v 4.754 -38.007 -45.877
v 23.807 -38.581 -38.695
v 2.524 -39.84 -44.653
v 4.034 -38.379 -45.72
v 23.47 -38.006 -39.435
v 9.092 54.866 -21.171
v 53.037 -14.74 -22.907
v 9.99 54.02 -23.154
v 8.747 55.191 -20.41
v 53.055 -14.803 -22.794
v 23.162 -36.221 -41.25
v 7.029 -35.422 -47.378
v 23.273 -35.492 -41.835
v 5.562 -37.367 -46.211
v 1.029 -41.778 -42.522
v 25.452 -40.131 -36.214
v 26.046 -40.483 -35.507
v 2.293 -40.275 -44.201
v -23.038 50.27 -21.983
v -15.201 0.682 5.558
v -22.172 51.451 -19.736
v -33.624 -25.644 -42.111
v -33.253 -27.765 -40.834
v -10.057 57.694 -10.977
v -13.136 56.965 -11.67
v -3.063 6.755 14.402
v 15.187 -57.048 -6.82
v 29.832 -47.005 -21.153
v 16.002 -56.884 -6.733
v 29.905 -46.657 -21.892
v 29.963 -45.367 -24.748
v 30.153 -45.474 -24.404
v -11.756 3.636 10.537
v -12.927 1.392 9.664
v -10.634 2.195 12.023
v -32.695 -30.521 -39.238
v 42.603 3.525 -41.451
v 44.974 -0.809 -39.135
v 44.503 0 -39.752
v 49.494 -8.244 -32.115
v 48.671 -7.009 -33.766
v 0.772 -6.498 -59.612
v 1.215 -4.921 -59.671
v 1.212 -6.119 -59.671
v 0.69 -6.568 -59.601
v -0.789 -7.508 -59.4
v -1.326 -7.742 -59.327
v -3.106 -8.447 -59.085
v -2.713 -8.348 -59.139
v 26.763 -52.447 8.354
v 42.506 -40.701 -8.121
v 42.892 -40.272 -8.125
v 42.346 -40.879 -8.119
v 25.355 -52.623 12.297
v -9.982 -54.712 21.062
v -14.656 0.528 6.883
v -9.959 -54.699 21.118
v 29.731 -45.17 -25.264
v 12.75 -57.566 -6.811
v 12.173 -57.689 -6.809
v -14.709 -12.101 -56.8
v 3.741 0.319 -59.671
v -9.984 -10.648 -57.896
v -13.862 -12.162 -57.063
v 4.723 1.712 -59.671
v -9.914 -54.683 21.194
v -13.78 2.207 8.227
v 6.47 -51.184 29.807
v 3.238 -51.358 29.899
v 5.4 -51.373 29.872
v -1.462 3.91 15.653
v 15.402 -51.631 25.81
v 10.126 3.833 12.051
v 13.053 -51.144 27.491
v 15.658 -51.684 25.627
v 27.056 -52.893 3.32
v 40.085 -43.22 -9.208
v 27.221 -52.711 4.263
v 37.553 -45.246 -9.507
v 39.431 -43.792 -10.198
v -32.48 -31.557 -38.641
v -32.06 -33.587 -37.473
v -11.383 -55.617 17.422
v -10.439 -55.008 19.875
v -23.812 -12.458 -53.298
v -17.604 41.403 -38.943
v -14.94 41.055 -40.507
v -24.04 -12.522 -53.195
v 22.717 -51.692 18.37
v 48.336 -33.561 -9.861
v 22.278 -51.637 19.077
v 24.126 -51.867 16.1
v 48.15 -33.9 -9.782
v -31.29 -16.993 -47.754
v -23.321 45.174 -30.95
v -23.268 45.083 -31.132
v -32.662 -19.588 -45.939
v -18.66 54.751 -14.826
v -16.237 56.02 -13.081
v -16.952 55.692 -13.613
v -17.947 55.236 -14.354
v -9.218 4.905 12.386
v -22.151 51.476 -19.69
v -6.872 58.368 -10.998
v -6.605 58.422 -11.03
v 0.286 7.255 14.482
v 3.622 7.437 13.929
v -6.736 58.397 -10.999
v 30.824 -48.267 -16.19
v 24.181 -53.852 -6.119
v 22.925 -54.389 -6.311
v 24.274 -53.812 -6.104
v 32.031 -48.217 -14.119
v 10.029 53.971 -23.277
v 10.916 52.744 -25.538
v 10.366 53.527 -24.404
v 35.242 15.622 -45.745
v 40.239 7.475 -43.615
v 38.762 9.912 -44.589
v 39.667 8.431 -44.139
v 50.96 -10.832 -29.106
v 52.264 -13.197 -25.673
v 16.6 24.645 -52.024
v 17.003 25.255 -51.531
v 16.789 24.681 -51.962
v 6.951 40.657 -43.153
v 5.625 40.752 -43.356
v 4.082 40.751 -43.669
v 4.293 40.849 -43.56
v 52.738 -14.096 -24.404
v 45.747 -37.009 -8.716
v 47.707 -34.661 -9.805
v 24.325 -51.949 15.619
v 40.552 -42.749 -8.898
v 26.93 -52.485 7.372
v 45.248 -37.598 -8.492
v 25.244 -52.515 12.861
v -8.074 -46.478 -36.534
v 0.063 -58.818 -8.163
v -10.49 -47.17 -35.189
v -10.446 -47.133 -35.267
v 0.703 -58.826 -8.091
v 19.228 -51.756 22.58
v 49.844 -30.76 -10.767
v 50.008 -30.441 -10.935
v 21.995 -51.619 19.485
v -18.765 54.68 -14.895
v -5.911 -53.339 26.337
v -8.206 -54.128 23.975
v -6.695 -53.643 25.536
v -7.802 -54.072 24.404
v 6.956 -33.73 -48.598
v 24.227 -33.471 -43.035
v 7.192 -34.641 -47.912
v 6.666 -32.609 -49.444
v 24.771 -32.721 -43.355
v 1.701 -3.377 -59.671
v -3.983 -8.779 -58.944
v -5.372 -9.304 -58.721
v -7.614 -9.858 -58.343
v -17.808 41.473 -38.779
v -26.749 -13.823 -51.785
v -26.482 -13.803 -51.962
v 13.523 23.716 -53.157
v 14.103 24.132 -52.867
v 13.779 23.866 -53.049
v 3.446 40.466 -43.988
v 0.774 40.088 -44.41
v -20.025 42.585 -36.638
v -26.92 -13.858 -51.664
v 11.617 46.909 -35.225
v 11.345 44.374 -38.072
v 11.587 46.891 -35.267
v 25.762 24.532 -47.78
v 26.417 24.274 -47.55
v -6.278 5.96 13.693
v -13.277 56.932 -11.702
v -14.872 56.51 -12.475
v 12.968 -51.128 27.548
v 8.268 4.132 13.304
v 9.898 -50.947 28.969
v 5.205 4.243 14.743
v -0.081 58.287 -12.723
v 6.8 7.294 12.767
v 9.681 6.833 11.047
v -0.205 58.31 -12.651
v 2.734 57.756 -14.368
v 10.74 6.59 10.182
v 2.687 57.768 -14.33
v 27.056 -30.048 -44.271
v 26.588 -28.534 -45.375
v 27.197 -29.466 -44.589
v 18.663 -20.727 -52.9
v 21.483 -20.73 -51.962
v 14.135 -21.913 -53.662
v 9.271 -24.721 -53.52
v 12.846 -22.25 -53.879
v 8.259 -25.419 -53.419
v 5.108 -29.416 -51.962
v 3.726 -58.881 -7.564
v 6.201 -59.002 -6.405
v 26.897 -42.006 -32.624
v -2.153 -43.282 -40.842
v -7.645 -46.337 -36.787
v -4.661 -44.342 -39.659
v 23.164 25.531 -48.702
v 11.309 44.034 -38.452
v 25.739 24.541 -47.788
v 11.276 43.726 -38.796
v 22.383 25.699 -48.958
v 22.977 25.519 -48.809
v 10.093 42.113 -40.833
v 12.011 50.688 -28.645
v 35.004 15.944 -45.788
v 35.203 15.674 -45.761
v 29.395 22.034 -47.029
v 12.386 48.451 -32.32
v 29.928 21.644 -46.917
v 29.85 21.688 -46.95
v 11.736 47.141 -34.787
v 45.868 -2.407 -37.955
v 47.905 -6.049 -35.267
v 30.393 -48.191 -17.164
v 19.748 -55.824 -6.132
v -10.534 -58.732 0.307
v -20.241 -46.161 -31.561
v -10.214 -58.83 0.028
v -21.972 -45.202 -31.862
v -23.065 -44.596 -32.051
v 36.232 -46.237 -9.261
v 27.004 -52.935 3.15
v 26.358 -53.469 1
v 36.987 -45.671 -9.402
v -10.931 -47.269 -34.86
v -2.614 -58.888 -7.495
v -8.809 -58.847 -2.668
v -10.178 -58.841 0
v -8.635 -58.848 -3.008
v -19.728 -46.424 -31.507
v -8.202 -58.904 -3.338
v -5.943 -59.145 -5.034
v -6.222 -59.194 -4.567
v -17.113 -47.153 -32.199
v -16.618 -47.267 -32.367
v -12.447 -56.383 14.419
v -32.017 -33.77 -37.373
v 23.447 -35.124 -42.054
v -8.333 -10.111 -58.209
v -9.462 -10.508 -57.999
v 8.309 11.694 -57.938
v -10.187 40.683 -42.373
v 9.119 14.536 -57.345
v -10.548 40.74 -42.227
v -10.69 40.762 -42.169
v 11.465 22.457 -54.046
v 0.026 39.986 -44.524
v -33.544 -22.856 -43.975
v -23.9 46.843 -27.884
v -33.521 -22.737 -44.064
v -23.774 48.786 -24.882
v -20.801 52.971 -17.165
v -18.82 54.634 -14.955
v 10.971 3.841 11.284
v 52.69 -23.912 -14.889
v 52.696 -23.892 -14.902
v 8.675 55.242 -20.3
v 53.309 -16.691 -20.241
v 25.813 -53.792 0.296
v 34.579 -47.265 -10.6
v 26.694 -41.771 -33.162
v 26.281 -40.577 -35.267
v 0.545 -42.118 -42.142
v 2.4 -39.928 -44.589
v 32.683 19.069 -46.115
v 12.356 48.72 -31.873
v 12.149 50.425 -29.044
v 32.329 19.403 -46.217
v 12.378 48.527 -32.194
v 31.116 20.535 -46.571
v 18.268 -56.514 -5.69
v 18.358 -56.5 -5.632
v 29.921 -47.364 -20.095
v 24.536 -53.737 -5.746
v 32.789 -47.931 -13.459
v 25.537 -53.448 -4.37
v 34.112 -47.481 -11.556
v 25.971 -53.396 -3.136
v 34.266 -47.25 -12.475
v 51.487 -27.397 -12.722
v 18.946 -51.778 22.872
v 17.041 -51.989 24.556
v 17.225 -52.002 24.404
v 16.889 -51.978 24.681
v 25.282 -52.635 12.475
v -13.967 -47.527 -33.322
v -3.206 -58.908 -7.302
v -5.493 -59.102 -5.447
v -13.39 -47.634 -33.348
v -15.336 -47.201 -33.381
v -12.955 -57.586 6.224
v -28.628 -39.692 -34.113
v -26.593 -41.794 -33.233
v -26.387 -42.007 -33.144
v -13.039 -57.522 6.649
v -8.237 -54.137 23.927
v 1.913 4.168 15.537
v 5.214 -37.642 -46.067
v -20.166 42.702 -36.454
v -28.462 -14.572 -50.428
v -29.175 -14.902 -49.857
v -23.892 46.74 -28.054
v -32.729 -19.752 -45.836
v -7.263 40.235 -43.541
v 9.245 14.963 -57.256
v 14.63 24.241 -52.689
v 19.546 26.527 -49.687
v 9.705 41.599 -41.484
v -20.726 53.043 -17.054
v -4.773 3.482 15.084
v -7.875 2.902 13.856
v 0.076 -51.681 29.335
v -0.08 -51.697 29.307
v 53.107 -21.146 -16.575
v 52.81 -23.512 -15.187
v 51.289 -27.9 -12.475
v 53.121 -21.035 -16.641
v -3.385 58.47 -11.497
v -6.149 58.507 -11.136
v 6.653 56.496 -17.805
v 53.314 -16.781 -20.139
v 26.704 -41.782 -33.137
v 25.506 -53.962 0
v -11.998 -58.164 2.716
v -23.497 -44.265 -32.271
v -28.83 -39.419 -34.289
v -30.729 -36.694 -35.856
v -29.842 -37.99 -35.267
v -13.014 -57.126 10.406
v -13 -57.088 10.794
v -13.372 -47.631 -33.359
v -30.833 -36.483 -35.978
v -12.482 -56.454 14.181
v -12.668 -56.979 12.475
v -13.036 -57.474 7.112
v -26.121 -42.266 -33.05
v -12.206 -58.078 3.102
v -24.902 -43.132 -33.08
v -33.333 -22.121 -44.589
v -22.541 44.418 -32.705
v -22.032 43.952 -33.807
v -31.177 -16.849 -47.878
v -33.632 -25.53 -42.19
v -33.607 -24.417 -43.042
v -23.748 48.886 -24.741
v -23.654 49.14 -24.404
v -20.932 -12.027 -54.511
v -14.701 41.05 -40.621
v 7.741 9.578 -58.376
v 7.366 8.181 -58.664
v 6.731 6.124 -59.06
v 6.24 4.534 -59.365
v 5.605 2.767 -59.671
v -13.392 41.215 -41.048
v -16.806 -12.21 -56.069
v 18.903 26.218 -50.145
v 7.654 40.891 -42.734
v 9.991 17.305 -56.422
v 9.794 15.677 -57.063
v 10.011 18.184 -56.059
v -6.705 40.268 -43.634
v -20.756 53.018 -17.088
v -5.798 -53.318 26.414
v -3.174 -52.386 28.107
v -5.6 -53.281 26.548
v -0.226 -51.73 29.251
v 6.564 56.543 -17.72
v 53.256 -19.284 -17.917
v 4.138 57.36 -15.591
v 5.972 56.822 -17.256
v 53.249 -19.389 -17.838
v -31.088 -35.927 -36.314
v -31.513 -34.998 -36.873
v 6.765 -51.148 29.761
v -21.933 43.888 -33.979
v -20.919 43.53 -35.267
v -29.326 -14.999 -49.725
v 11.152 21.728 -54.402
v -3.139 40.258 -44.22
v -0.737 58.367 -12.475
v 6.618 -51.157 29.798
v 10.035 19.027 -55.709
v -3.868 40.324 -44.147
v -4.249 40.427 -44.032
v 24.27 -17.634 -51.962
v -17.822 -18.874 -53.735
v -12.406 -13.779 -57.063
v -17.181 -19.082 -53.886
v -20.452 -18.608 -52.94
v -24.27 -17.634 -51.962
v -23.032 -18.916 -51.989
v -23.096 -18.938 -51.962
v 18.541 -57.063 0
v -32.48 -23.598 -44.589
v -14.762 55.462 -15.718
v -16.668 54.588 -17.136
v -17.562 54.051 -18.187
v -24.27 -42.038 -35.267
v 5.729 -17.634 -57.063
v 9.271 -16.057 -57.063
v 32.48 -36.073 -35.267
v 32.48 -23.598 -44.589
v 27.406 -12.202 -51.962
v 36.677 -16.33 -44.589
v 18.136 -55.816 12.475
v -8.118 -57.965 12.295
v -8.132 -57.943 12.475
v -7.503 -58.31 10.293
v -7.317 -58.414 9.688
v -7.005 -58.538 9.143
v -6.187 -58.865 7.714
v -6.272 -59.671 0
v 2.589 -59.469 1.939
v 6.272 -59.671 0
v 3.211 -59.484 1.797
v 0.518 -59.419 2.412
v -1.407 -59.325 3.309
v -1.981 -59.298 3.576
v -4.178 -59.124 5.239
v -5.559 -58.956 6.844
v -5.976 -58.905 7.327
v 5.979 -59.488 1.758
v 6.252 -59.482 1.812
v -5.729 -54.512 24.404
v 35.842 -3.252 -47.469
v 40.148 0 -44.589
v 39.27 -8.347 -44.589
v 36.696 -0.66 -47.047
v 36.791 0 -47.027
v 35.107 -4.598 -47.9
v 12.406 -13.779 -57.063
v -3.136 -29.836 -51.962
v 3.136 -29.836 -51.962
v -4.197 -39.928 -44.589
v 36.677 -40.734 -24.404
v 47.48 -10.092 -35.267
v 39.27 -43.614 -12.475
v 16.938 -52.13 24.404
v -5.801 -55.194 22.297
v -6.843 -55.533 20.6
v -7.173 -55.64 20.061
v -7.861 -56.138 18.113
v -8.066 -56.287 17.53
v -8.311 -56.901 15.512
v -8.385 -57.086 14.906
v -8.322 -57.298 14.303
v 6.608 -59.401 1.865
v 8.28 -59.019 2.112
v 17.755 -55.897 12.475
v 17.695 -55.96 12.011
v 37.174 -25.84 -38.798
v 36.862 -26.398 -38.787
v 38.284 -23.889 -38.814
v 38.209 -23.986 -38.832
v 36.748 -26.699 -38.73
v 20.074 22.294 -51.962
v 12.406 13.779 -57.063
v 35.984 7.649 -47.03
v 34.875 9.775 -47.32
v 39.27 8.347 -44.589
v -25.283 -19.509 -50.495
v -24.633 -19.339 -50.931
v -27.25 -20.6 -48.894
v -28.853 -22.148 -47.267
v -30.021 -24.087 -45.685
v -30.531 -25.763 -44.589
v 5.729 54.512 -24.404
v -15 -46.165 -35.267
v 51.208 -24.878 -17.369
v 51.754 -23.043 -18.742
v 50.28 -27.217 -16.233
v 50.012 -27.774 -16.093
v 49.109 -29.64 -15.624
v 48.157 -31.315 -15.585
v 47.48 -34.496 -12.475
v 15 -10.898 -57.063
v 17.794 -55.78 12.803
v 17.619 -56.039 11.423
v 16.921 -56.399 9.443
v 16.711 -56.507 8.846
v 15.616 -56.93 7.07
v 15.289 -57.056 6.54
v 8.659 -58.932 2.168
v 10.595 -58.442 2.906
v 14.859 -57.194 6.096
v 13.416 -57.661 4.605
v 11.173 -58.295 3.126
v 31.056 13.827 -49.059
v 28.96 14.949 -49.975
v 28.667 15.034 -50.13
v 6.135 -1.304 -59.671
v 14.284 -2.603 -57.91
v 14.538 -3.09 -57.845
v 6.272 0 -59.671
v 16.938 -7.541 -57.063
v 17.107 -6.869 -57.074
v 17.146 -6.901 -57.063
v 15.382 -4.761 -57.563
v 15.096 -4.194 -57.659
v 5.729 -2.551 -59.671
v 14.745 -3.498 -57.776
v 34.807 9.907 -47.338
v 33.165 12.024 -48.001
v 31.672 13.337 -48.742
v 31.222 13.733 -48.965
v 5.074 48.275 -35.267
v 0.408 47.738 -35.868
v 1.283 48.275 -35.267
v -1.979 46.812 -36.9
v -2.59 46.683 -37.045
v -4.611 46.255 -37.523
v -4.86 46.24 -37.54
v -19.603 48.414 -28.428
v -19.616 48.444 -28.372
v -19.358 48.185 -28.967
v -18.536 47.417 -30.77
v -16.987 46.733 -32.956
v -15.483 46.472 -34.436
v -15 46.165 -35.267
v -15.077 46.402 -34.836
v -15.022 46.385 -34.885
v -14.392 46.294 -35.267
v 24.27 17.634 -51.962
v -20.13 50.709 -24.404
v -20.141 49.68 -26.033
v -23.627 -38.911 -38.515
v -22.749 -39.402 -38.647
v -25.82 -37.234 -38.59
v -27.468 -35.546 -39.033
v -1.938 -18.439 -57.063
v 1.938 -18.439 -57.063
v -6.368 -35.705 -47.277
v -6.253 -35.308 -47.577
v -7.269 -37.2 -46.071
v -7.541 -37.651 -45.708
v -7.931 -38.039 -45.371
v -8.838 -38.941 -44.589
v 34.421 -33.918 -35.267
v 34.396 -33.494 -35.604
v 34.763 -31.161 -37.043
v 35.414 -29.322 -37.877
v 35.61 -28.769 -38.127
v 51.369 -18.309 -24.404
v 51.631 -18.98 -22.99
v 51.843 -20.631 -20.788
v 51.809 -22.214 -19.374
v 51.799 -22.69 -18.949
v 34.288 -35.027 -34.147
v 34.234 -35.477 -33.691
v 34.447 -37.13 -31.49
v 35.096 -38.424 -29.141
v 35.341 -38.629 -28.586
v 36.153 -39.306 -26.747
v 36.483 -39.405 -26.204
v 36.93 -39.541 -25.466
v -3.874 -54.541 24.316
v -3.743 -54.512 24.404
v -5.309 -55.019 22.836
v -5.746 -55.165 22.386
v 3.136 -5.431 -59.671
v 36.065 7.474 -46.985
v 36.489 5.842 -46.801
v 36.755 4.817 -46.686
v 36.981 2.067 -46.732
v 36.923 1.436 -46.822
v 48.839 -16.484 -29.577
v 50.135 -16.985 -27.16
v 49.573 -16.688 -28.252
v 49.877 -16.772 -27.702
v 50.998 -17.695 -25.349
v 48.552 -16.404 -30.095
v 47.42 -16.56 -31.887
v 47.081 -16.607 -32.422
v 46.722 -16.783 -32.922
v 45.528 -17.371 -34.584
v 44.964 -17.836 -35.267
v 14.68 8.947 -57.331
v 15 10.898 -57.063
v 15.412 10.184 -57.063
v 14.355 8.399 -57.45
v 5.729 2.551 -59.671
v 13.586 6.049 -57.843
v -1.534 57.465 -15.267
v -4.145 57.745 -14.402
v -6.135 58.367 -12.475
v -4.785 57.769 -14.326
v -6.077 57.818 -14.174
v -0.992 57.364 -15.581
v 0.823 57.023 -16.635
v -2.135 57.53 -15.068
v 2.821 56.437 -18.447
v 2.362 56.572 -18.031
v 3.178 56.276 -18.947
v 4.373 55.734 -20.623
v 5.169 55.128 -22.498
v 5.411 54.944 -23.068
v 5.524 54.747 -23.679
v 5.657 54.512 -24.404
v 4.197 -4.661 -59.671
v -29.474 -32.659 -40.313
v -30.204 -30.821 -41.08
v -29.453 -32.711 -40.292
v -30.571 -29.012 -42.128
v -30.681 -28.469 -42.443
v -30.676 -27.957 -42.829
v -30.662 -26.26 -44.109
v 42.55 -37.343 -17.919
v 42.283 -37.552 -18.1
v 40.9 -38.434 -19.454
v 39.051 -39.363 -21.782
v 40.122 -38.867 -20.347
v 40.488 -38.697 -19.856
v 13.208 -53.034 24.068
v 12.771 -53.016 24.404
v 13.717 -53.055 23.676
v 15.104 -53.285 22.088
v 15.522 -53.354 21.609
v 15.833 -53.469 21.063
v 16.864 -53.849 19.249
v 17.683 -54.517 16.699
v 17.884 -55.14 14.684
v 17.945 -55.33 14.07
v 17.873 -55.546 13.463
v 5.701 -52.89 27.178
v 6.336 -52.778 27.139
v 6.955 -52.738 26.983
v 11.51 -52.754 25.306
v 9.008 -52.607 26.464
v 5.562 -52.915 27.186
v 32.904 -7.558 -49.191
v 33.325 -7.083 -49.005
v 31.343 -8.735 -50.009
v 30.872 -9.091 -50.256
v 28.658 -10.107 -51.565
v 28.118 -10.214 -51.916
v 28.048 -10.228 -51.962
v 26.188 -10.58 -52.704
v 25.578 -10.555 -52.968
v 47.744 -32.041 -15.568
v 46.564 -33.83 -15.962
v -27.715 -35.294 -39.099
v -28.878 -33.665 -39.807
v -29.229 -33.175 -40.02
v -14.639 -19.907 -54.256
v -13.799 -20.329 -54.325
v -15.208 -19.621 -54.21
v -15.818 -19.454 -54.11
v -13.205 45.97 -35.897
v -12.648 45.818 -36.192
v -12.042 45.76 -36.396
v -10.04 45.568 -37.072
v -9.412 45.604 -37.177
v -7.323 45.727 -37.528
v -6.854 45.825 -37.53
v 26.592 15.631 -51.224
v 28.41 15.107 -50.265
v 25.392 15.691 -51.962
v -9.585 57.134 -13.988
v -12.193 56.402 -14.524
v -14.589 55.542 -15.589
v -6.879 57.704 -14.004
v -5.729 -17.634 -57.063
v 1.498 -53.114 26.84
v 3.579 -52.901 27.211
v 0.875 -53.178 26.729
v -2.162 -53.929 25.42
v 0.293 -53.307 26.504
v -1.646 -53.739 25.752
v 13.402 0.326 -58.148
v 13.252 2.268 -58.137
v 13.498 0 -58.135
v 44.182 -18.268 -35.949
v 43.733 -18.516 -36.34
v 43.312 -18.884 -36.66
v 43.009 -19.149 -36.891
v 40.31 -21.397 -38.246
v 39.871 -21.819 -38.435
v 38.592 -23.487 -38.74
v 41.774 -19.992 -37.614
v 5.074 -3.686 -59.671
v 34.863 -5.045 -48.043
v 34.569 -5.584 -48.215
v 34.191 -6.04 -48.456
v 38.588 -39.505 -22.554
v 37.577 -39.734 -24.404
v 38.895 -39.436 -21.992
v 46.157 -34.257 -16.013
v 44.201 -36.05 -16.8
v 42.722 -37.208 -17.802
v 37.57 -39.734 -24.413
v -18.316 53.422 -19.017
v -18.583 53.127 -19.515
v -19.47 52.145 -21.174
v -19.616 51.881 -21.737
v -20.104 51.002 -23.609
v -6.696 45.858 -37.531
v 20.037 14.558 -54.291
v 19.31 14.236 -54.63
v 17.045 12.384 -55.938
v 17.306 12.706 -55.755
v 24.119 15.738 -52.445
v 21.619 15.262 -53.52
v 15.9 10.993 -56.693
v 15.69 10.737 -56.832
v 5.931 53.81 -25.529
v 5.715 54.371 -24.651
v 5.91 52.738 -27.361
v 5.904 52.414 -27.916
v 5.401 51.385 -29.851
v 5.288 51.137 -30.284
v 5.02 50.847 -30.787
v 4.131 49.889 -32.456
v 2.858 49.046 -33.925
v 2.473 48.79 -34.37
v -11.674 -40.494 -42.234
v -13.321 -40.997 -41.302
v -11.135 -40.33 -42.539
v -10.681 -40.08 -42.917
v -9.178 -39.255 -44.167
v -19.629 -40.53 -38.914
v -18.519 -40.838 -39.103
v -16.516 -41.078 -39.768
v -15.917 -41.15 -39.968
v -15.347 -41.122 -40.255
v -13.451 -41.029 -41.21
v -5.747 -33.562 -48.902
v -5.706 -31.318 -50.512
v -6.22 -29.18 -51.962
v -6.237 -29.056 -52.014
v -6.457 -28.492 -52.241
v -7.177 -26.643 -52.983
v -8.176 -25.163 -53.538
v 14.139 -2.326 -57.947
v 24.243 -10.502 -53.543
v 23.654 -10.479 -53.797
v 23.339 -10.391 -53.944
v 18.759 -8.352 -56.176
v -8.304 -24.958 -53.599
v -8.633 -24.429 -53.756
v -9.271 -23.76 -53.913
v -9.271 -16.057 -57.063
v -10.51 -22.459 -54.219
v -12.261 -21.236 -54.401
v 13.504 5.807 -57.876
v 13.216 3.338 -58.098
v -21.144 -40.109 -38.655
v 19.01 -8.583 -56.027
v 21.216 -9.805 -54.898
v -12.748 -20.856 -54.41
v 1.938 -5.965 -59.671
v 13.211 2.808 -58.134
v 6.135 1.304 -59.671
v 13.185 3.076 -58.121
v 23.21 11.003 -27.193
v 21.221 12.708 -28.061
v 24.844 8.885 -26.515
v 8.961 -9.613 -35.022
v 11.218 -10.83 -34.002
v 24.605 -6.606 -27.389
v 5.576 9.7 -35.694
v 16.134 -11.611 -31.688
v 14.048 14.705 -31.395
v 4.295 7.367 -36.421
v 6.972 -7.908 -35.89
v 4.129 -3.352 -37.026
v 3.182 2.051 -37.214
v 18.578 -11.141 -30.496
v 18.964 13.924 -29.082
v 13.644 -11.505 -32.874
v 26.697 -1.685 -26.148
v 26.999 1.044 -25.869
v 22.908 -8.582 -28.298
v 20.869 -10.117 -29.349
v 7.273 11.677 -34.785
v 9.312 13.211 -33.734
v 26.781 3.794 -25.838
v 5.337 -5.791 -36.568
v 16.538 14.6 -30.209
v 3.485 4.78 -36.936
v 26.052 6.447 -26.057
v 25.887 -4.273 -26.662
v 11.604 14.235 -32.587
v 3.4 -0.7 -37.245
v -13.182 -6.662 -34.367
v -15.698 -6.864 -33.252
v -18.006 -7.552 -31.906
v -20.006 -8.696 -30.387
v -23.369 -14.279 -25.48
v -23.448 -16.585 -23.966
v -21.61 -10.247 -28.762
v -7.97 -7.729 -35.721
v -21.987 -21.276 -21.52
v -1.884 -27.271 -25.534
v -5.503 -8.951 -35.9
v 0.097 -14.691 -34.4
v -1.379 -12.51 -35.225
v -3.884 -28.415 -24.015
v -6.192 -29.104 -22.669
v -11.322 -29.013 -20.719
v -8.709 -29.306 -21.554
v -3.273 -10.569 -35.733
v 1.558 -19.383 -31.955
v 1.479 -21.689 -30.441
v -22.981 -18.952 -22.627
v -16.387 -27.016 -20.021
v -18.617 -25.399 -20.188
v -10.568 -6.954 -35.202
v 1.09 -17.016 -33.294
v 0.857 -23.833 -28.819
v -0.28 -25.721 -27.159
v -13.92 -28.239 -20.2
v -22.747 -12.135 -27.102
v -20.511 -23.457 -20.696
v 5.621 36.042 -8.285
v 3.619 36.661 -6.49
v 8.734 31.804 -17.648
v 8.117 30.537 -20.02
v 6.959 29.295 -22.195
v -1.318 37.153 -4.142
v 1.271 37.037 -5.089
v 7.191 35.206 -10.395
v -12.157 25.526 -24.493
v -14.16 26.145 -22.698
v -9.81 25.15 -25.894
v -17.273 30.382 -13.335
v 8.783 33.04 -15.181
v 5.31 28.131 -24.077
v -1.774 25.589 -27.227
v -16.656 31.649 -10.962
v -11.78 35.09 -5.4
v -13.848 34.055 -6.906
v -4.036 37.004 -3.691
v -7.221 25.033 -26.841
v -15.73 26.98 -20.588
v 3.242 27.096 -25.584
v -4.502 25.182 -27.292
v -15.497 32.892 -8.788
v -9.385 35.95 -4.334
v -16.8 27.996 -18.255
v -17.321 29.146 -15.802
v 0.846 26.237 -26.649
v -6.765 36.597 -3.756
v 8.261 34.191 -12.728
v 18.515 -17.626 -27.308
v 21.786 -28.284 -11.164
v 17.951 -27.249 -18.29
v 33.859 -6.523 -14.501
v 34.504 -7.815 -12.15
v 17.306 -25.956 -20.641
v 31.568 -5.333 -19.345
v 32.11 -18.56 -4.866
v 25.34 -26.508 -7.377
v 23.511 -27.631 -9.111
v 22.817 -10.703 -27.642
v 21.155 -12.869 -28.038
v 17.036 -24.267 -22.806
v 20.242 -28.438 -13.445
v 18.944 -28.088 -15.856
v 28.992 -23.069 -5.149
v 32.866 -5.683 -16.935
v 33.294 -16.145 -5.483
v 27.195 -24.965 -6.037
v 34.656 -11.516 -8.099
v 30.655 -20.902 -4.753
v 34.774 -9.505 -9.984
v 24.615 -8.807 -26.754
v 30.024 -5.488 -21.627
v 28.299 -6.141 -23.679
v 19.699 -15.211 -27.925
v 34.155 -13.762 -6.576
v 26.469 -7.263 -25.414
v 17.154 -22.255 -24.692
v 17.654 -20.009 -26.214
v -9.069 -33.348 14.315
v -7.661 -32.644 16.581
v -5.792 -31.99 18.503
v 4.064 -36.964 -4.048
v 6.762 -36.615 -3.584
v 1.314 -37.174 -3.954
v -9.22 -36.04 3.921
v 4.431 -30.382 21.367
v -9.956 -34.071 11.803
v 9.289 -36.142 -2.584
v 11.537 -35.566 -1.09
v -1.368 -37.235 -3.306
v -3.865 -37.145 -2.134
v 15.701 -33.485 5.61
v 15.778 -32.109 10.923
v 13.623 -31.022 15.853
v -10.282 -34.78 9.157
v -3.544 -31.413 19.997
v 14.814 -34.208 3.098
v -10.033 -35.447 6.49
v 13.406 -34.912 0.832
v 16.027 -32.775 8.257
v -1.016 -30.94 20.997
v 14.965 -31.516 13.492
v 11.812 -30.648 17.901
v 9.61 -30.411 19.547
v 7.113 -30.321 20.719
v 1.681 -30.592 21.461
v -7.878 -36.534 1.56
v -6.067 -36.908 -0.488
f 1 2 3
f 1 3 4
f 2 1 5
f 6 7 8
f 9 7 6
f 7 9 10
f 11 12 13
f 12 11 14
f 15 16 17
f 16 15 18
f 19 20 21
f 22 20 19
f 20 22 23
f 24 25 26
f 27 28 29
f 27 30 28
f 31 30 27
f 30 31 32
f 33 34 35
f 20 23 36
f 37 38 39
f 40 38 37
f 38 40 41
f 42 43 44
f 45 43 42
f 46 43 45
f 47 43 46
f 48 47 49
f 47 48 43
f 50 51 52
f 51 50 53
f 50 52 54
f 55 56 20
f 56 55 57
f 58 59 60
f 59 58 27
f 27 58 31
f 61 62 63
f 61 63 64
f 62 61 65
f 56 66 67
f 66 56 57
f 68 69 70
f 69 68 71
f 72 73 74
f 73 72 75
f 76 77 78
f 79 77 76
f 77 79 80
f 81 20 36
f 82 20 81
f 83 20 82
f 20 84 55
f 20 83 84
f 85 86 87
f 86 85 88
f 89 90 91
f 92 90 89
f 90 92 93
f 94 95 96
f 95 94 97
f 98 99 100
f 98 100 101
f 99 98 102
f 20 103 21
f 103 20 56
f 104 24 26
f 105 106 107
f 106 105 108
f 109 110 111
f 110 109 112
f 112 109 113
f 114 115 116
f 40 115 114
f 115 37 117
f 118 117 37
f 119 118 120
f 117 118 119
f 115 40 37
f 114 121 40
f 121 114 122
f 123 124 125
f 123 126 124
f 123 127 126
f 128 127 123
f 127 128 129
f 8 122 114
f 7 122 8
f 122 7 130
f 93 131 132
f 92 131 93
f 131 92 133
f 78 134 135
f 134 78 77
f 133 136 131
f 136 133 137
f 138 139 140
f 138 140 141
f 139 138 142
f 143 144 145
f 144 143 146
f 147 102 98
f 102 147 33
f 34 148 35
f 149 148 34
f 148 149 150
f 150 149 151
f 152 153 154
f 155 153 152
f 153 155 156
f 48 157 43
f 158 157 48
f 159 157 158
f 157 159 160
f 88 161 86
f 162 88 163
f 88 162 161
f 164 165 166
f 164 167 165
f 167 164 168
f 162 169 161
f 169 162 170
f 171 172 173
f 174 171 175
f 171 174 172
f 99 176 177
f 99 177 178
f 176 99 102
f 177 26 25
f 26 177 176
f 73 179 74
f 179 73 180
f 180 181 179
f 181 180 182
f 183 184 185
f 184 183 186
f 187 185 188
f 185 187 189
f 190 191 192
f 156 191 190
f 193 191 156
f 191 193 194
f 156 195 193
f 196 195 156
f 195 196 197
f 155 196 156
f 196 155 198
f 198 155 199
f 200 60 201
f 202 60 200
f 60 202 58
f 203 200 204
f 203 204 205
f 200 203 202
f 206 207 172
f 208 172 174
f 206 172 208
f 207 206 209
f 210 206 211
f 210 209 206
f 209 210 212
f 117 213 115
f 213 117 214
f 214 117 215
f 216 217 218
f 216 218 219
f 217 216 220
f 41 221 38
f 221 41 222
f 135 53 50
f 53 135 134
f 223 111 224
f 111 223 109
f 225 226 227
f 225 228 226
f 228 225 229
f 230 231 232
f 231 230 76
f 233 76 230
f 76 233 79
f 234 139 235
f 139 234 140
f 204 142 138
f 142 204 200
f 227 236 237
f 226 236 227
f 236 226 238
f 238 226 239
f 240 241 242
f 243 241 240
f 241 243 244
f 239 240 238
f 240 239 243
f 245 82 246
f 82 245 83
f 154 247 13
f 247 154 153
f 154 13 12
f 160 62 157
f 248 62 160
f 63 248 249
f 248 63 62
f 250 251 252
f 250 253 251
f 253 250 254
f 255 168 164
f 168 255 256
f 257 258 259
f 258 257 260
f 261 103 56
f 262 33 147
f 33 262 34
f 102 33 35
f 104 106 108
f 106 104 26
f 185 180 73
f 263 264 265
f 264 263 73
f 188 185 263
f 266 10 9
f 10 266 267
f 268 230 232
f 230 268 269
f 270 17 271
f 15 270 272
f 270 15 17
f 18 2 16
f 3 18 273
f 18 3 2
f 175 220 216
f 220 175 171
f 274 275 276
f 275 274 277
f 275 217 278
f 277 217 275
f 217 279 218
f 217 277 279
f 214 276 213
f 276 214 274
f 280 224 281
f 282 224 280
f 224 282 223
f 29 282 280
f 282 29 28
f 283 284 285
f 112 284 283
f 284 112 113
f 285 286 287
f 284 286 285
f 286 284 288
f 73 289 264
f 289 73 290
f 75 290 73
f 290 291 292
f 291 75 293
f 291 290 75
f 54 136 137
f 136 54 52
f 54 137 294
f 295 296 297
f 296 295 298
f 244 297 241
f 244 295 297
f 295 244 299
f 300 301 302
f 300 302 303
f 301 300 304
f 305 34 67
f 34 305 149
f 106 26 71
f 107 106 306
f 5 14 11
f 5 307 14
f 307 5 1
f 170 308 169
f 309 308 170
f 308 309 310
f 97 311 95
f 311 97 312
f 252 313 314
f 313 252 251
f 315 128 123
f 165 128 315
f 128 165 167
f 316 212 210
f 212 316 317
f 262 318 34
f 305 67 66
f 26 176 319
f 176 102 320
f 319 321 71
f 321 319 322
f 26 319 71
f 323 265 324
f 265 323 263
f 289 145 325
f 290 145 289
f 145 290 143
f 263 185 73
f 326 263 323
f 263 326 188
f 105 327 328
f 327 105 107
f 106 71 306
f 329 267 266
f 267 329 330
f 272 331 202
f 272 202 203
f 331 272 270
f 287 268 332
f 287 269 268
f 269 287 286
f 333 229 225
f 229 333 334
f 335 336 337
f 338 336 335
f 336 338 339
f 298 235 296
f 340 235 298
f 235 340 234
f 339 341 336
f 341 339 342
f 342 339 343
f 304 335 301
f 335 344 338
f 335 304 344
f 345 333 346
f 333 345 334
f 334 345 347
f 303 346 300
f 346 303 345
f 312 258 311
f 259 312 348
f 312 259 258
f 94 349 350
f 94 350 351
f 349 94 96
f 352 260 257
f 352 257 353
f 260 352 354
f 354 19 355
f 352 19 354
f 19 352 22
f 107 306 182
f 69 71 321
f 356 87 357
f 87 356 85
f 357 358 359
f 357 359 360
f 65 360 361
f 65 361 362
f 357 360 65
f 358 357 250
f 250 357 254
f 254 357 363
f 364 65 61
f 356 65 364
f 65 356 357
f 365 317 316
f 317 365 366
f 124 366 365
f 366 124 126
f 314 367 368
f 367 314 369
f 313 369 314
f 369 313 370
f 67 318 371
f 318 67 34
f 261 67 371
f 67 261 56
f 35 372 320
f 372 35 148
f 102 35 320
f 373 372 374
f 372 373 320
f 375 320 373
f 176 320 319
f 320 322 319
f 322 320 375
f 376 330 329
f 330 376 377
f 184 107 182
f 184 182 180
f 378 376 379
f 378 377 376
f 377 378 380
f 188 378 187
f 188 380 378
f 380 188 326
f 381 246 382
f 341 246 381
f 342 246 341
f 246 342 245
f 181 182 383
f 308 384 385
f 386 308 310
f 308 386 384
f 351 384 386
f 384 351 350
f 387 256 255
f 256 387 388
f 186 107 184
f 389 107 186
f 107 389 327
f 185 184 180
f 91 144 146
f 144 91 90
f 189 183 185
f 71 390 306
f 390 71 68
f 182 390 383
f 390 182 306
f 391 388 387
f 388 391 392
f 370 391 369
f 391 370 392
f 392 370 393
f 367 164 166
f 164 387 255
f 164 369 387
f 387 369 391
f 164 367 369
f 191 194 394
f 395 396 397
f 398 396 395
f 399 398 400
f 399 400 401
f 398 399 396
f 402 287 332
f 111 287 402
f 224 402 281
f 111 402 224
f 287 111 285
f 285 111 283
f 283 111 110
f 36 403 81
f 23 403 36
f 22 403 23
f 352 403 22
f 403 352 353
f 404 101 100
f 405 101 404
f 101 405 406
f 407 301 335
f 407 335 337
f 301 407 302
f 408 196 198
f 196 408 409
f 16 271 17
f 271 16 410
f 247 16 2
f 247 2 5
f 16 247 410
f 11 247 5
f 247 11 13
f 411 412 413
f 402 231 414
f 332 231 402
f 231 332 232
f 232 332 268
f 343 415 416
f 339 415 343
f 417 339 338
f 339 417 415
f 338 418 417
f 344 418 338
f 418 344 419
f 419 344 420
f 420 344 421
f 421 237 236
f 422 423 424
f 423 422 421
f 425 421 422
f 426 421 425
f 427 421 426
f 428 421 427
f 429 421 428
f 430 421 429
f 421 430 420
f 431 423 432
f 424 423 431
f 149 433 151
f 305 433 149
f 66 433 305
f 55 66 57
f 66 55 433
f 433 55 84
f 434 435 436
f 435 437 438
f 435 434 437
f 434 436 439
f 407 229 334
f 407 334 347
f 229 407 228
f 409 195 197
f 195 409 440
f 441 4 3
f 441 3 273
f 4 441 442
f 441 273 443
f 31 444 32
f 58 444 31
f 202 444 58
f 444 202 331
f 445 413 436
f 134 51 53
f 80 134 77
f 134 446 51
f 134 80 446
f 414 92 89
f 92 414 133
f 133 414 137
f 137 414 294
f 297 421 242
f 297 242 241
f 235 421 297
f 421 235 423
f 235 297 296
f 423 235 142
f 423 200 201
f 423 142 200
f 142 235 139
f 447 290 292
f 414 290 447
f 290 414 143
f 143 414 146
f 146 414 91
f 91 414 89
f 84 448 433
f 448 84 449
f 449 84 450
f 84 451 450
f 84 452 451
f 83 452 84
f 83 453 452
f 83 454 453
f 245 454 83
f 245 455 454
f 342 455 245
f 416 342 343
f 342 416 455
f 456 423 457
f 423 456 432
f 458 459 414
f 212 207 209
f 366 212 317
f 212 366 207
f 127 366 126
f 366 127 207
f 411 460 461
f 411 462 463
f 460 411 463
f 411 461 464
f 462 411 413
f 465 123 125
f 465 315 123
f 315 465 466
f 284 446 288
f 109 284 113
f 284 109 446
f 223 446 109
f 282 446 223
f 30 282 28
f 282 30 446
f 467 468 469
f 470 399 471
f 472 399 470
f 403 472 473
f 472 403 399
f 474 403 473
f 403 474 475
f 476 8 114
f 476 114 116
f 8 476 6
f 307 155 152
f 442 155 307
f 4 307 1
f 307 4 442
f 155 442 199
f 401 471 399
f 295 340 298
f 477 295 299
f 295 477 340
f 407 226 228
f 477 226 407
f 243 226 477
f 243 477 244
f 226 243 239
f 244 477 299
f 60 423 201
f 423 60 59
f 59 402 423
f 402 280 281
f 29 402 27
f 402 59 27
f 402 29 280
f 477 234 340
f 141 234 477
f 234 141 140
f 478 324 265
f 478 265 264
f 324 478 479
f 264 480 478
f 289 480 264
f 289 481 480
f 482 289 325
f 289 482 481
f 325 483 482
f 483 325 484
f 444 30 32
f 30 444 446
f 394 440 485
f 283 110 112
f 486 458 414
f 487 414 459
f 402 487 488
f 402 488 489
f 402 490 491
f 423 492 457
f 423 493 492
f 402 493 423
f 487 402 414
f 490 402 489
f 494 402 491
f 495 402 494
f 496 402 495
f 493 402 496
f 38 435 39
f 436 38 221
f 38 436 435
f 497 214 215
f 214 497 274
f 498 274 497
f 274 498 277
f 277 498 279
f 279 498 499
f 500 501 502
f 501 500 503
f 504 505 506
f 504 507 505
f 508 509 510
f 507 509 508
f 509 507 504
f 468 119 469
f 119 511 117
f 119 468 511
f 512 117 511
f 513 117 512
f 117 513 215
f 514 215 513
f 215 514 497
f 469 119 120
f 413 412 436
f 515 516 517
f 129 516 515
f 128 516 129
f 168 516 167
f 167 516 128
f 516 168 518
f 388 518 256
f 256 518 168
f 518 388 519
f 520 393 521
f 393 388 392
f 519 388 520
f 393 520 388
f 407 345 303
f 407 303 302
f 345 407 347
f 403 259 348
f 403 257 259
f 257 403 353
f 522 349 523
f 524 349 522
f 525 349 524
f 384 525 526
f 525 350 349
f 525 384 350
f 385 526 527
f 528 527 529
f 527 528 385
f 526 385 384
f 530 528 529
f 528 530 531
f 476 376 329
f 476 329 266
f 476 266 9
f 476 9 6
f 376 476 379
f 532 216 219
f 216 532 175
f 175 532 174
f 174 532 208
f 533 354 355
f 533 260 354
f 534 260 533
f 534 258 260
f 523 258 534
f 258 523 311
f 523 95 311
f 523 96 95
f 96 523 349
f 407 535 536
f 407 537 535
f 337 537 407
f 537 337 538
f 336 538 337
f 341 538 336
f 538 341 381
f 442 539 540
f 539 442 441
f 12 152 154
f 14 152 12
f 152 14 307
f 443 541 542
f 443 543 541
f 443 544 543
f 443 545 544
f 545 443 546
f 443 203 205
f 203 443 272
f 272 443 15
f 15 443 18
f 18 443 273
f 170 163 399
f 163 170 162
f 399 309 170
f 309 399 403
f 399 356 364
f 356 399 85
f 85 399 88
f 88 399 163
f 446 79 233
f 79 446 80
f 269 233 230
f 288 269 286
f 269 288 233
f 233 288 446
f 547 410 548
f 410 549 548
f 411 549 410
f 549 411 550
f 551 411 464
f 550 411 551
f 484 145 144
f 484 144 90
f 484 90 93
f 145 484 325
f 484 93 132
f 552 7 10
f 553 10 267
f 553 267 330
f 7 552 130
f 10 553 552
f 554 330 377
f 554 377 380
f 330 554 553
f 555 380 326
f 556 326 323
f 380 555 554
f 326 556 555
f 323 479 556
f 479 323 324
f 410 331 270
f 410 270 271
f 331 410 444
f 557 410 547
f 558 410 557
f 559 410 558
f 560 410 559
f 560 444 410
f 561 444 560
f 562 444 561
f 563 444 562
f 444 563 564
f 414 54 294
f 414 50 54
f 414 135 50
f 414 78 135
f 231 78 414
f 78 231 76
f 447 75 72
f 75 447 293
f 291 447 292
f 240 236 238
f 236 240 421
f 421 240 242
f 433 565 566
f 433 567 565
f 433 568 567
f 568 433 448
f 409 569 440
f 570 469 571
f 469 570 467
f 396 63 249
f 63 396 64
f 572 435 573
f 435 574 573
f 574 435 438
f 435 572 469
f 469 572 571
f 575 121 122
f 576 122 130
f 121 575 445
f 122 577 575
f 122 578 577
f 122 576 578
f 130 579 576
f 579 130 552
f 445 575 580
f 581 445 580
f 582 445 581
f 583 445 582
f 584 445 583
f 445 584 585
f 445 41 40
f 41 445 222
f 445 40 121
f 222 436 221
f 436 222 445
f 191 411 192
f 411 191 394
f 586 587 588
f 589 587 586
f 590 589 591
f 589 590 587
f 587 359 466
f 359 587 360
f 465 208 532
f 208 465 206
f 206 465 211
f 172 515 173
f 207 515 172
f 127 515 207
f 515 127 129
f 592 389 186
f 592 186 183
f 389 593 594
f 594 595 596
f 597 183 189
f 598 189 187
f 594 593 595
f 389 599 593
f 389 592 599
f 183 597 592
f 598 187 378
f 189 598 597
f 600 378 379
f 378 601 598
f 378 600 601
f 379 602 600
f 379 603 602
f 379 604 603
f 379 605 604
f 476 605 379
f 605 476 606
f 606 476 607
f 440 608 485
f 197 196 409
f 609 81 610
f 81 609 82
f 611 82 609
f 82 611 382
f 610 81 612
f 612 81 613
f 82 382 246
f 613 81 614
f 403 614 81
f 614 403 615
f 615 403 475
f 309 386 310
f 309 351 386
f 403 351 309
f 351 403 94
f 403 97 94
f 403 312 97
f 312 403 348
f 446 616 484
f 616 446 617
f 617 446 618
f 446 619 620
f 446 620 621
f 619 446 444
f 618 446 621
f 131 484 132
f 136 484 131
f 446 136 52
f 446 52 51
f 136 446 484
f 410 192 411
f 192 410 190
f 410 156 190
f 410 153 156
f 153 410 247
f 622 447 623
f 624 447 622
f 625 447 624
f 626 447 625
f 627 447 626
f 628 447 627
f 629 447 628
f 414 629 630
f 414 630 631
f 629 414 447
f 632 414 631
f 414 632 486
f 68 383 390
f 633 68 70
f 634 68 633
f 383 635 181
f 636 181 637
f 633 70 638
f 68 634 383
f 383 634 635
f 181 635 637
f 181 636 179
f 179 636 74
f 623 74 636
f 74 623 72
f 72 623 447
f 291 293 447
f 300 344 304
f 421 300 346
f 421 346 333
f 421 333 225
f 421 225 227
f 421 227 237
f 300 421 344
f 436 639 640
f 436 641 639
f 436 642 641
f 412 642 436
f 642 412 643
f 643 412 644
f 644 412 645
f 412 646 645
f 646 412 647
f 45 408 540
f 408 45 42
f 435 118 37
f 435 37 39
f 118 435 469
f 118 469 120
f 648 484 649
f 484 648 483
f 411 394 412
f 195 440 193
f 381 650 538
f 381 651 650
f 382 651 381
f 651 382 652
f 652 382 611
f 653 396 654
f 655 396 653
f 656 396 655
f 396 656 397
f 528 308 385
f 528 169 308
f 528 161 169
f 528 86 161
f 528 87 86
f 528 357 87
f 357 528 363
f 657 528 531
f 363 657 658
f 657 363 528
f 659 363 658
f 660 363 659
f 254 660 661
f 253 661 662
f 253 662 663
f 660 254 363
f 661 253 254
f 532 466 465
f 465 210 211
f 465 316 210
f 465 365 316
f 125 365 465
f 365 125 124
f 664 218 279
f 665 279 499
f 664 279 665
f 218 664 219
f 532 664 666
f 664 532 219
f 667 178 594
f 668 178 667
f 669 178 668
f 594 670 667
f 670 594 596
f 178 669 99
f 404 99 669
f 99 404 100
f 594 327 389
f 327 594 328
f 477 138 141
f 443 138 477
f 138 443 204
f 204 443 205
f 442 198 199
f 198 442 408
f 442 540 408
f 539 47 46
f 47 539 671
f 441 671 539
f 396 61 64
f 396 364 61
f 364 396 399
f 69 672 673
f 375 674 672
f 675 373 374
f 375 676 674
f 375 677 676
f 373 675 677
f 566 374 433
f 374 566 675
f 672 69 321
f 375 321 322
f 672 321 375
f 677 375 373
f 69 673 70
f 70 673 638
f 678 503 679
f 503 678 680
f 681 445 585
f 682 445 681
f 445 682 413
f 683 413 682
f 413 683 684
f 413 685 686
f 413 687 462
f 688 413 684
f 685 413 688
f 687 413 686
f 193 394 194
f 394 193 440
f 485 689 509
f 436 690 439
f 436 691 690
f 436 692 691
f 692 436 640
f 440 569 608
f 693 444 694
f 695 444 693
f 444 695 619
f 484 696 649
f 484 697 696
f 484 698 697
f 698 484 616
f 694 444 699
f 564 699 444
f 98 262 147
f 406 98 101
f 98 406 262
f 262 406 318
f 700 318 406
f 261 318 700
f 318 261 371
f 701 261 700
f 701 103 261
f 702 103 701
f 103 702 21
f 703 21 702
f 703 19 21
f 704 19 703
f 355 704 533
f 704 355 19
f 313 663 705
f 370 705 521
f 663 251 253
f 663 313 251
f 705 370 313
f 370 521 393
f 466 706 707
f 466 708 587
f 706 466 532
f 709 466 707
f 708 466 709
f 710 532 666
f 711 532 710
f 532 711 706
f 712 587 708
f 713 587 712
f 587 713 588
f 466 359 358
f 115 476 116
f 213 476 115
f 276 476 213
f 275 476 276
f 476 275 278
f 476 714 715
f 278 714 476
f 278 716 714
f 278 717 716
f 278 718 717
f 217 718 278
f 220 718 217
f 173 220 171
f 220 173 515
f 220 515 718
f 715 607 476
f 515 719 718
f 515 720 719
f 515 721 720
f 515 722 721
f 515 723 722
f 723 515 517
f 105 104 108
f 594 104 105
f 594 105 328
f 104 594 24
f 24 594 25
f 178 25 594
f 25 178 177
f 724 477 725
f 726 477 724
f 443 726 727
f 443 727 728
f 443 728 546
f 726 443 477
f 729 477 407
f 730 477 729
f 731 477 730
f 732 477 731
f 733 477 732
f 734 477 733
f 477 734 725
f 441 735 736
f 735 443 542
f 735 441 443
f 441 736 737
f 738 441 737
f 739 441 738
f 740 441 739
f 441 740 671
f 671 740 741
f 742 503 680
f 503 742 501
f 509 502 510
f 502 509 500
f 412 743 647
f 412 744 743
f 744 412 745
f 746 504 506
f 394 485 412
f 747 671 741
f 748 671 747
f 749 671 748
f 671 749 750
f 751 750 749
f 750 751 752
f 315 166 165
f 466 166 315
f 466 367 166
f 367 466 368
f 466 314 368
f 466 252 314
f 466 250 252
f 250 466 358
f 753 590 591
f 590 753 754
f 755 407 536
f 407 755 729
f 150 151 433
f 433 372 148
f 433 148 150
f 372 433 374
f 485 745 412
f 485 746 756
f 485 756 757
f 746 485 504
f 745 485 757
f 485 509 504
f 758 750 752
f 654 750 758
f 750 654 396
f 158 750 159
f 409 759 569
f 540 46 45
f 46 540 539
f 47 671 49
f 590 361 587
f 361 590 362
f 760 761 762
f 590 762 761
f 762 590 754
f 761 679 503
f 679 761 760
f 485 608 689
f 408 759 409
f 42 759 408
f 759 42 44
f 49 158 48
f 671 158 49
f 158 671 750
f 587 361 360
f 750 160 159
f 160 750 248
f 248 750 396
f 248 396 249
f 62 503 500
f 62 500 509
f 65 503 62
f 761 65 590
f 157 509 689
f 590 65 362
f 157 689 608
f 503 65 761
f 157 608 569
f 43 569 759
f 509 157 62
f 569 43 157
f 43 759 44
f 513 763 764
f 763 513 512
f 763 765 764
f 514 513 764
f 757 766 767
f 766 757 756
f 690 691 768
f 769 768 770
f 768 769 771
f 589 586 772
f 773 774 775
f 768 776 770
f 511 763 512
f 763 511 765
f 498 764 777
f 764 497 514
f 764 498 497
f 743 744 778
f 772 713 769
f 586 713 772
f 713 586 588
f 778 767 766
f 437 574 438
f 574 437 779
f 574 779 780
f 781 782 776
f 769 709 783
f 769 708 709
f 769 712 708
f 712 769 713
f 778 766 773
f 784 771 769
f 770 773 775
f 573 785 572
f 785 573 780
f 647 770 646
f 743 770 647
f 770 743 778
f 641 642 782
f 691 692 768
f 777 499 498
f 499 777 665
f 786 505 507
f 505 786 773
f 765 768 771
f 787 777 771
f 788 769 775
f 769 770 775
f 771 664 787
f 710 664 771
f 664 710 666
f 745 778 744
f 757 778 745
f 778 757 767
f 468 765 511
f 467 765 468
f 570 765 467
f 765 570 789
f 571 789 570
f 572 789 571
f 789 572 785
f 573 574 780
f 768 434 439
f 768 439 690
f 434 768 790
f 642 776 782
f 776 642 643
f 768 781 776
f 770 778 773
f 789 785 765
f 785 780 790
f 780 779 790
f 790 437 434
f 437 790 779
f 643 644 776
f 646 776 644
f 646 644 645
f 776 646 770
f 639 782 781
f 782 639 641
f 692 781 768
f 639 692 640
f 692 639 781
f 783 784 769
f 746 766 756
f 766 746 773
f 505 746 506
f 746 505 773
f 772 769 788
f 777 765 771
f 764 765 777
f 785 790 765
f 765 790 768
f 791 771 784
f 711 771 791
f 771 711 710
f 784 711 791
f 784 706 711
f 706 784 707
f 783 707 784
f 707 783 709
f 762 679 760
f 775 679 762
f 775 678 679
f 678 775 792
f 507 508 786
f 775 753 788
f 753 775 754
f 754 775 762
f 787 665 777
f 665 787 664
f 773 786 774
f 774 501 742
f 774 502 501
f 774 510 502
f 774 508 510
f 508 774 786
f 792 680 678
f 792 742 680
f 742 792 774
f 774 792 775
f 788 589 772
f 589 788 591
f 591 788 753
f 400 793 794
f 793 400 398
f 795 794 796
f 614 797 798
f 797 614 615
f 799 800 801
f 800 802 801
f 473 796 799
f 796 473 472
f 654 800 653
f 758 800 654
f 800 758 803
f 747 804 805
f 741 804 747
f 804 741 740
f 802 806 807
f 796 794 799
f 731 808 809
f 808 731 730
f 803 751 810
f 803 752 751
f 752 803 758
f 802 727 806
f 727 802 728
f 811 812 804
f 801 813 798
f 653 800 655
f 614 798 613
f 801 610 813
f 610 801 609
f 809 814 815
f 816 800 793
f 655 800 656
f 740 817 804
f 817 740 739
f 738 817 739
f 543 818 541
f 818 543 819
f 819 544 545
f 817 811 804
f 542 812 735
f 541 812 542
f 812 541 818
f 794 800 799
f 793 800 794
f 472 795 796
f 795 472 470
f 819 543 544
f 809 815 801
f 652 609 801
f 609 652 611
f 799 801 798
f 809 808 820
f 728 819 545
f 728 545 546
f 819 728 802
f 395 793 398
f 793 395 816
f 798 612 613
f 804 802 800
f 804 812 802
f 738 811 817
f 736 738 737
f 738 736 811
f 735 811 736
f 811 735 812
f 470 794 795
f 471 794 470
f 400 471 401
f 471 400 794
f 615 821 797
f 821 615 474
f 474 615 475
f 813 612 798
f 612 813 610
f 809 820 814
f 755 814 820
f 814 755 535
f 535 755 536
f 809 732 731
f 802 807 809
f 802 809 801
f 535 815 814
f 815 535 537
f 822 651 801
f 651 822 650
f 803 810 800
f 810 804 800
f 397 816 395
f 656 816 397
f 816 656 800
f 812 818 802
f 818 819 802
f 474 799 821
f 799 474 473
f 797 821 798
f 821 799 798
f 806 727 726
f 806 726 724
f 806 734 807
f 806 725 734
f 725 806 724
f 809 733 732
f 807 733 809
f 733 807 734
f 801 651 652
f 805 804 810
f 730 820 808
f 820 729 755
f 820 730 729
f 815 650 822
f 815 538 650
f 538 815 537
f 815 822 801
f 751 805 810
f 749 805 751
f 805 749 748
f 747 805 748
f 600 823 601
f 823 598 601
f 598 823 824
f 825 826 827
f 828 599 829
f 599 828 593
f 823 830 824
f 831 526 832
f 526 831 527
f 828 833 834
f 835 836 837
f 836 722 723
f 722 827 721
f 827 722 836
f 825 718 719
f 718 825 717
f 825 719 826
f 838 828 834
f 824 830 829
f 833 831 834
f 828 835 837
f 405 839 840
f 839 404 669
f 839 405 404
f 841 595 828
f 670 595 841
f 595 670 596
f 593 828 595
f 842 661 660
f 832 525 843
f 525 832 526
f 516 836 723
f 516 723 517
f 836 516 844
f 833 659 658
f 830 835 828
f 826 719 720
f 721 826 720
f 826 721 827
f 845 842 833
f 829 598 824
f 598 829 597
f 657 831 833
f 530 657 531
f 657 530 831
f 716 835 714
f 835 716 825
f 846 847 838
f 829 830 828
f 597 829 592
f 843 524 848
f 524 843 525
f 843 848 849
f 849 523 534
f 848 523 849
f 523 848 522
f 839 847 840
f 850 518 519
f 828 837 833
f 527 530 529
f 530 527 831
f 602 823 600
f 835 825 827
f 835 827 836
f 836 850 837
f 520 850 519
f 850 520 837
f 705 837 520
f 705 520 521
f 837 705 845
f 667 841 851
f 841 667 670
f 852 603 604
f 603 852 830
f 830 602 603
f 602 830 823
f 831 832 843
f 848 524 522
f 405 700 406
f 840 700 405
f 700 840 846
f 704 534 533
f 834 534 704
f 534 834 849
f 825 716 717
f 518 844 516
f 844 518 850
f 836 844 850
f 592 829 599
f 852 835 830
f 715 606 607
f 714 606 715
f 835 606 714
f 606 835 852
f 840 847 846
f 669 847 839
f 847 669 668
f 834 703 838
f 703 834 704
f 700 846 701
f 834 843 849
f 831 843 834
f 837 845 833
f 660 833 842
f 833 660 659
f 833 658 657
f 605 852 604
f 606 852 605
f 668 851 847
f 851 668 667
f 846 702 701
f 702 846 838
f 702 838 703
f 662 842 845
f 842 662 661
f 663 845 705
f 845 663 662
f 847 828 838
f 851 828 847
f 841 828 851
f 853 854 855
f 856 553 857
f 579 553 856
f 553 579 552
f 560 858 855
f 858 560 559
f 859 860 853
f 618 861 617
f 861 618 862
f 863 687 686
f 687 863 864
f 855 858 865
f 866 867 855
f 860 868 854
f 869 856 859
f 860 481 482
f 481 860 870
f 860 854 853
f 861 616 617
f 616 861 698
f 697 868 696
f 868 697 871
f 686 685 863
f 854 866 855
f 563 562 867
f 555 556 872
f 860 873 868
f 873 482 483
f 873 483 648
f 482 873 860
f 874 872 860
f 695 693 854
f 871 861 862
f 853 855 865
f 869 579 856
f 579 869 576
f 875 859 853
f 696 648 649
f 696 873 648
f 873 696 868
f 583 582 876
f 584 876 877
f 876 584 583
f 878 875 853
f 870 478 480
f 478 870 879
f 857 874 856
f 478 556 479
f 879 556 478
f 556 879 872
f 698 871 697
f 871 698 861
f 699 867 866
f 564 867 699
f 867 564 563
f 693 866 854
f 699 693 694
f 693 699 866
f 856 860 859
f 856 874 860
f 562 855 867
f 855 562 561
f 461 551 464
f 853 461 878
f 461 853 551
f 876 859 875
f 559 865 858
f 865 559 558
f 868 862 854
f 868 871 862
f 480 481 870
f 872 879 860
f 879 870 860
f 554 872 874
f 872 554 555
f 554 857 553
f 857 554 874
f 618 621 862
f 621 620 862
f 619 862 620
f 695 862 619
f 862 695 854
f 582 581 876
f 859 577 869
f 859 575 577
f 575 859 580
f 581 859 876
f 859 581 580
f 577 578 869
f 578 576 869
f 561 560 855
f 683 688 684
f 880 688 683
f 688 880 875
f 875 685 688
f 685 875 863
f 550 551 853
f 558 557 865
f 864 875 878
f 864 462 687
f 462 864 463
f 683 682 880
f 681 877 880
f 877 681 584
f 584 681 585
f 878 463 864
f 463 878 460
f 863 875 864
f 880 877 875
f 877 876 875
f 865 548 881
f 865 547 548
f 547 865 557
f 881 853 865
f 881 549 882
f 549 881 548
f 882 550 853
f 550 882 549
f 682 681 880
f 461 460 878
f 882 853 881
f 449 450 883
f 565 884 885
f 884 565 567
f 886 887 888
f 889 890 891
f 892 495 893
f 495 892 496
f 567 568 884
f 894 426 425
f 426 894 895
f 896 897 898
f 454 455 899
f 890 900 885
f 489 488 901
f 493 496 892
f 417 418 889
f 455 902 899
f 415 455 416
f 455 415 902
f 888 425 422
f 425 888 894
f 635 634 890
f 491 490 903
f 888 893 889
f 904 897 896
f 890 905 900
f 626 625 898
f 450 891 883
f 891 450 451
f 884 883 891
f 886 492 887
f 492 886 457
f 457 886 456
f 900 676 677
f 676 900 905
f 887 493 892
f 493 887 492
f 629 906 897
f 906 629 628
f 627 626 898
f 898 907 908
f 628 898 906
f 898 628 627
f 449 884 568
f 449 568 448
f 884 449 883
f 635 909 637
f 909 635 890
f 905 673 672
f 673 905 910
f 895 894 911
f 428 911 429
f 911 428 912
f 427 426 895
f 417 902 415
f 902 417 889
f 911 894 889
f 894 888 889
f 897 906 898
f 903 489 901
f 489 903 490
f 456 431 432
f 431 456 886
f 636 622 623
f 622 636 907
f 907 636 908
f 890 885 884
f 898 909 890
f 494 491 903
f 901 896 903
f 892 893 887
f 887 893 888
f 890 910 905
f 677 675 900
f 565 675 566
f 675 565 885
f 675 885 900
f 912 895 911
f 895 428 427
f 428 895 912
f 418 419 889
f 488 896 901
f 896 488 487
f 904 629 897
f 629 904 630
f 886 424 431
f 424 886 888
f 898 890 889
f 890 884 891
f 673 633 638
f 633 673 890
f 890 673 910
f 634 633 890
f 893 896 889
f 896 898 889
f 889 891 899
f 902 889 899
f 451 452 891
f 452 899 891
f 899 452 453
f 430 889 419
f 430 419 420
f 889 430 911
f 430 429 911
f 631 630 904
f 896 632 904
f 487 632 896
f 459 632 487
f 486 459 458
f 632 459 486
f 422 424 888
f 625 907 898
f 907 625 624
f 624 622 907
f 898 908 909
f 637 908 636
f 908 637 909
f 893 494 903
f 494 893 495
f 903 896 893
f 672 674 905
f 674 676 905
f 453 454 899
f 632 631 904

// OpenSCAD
difference() {
	intersection() {
		hull() {
			rotate(a = -104.5489988397, v = [0.7573846138, 0.6027131623, -0.0000000000]) {
				rotate(a = -90.0000000000, v = [0.9557390242, 0.2942157670, -0.0000000000]) {
					cylinder(h = 60, r = 16.2000000000);
				}
			}
			rotate(a = -104.5489988397, v = [0.7573846138, 0.6027131623, -0.0000000000]) {
				rotate(a = -90.0000000000, v = [0.2942157670, 0.9557390242, -0.0000000000]) {
					cylinder(h = 60, r = 16.2000000000);
				}
			}
			rotate(a = -104.5489988397, v = [0.7573846138, 0.6027131623, -0.0000000000]) {
				rotate(a = -30.9572897354, v = [0.4686787057, -0.2120060629, 0.0000000000]) {
					cylinder(h = 60, r = 16.2000000000);
				}
			}
			rotate(a = -104.5489988397, v = [0.7573846138, 0.6027131623, -0.0000000000]) {
				rotate(a = -133.9329822888, v = [0.6931426616, 0.1953763480, -0.0000000000]) {
					cylinder(h = 60, r = 16.2000000000);
				}
			}
			rotate(a = -104.5489988397, v = [0.7573846138, 0.6027131623, -0.0000000000]) {
				rotate(a = -147.4470048335, v = [-0.3641290752, 0.3961559381, 0.0000000000]) {
					cylinder(h = 60, r = 16.2000000000);
				}
			}
		}
		sphere(r = 60);
	}
	union() {
		rotate(a = -104.5489988397, v = [0.7573846138, 0.6027131623, -0.0000000000]) {
			rotate(a = -90.0000000000, v = [0.9557390242, 0.2942157670, -0.0000000000]) {
				translate(v = [0, 0, 35]) {
					cylinder(h = 100, r = 13.2000000000);
				}
			}
		}
		rotate(a = -104.5489988397, v = [0.7573846138, 0.6027131623, -0.0000000000]) {
			rotate(a = -90.0000000000, v = [0.2942157670, 0.9557390242, -0.0000000000]) {
				translate(v = [0, 0, 35]) {
					cylinder(h = 100, r = 13.2000000000);
				}
			}
		}
		rotate(a = -104.5489988397, v = [0.7573846138, 0.6027131623, -0.0000000000]) {
			rotate(a = -30.9572897354, v = [0.4686787057, -0.2120060629, 0.0000000000]) {
				translate(v = [0, 0, 35]) {
					cylinder(h = 100, r = 13.2000000000);
				}
			}
		}
		rotate(a = -104.5489988397, v = [0.7573846138, 0.6027131623, -0.0000000000]) {
			rotate(a = -133.9329822888, v = [0.6931426616, 0.1953763480, -0.0000000000]) {
				translate(v = [0, 0, 35]) {
					cylinder(h = 100, r = 13.2000000000);
				}
			}
		}
		rotate(a = -104.5489988397, v = [0.7573846138, 0.6027131623, -0.0000000000]) {
			rotate(a = -147.4470048335, v = [-0.3641290752, 0.3961559381, 0.0000000000]) {
				translate(v = [0, 0, 35]) {
					cylinder(h = 100, r = 13.2000000000);
				}
			}
		}
	}
}
